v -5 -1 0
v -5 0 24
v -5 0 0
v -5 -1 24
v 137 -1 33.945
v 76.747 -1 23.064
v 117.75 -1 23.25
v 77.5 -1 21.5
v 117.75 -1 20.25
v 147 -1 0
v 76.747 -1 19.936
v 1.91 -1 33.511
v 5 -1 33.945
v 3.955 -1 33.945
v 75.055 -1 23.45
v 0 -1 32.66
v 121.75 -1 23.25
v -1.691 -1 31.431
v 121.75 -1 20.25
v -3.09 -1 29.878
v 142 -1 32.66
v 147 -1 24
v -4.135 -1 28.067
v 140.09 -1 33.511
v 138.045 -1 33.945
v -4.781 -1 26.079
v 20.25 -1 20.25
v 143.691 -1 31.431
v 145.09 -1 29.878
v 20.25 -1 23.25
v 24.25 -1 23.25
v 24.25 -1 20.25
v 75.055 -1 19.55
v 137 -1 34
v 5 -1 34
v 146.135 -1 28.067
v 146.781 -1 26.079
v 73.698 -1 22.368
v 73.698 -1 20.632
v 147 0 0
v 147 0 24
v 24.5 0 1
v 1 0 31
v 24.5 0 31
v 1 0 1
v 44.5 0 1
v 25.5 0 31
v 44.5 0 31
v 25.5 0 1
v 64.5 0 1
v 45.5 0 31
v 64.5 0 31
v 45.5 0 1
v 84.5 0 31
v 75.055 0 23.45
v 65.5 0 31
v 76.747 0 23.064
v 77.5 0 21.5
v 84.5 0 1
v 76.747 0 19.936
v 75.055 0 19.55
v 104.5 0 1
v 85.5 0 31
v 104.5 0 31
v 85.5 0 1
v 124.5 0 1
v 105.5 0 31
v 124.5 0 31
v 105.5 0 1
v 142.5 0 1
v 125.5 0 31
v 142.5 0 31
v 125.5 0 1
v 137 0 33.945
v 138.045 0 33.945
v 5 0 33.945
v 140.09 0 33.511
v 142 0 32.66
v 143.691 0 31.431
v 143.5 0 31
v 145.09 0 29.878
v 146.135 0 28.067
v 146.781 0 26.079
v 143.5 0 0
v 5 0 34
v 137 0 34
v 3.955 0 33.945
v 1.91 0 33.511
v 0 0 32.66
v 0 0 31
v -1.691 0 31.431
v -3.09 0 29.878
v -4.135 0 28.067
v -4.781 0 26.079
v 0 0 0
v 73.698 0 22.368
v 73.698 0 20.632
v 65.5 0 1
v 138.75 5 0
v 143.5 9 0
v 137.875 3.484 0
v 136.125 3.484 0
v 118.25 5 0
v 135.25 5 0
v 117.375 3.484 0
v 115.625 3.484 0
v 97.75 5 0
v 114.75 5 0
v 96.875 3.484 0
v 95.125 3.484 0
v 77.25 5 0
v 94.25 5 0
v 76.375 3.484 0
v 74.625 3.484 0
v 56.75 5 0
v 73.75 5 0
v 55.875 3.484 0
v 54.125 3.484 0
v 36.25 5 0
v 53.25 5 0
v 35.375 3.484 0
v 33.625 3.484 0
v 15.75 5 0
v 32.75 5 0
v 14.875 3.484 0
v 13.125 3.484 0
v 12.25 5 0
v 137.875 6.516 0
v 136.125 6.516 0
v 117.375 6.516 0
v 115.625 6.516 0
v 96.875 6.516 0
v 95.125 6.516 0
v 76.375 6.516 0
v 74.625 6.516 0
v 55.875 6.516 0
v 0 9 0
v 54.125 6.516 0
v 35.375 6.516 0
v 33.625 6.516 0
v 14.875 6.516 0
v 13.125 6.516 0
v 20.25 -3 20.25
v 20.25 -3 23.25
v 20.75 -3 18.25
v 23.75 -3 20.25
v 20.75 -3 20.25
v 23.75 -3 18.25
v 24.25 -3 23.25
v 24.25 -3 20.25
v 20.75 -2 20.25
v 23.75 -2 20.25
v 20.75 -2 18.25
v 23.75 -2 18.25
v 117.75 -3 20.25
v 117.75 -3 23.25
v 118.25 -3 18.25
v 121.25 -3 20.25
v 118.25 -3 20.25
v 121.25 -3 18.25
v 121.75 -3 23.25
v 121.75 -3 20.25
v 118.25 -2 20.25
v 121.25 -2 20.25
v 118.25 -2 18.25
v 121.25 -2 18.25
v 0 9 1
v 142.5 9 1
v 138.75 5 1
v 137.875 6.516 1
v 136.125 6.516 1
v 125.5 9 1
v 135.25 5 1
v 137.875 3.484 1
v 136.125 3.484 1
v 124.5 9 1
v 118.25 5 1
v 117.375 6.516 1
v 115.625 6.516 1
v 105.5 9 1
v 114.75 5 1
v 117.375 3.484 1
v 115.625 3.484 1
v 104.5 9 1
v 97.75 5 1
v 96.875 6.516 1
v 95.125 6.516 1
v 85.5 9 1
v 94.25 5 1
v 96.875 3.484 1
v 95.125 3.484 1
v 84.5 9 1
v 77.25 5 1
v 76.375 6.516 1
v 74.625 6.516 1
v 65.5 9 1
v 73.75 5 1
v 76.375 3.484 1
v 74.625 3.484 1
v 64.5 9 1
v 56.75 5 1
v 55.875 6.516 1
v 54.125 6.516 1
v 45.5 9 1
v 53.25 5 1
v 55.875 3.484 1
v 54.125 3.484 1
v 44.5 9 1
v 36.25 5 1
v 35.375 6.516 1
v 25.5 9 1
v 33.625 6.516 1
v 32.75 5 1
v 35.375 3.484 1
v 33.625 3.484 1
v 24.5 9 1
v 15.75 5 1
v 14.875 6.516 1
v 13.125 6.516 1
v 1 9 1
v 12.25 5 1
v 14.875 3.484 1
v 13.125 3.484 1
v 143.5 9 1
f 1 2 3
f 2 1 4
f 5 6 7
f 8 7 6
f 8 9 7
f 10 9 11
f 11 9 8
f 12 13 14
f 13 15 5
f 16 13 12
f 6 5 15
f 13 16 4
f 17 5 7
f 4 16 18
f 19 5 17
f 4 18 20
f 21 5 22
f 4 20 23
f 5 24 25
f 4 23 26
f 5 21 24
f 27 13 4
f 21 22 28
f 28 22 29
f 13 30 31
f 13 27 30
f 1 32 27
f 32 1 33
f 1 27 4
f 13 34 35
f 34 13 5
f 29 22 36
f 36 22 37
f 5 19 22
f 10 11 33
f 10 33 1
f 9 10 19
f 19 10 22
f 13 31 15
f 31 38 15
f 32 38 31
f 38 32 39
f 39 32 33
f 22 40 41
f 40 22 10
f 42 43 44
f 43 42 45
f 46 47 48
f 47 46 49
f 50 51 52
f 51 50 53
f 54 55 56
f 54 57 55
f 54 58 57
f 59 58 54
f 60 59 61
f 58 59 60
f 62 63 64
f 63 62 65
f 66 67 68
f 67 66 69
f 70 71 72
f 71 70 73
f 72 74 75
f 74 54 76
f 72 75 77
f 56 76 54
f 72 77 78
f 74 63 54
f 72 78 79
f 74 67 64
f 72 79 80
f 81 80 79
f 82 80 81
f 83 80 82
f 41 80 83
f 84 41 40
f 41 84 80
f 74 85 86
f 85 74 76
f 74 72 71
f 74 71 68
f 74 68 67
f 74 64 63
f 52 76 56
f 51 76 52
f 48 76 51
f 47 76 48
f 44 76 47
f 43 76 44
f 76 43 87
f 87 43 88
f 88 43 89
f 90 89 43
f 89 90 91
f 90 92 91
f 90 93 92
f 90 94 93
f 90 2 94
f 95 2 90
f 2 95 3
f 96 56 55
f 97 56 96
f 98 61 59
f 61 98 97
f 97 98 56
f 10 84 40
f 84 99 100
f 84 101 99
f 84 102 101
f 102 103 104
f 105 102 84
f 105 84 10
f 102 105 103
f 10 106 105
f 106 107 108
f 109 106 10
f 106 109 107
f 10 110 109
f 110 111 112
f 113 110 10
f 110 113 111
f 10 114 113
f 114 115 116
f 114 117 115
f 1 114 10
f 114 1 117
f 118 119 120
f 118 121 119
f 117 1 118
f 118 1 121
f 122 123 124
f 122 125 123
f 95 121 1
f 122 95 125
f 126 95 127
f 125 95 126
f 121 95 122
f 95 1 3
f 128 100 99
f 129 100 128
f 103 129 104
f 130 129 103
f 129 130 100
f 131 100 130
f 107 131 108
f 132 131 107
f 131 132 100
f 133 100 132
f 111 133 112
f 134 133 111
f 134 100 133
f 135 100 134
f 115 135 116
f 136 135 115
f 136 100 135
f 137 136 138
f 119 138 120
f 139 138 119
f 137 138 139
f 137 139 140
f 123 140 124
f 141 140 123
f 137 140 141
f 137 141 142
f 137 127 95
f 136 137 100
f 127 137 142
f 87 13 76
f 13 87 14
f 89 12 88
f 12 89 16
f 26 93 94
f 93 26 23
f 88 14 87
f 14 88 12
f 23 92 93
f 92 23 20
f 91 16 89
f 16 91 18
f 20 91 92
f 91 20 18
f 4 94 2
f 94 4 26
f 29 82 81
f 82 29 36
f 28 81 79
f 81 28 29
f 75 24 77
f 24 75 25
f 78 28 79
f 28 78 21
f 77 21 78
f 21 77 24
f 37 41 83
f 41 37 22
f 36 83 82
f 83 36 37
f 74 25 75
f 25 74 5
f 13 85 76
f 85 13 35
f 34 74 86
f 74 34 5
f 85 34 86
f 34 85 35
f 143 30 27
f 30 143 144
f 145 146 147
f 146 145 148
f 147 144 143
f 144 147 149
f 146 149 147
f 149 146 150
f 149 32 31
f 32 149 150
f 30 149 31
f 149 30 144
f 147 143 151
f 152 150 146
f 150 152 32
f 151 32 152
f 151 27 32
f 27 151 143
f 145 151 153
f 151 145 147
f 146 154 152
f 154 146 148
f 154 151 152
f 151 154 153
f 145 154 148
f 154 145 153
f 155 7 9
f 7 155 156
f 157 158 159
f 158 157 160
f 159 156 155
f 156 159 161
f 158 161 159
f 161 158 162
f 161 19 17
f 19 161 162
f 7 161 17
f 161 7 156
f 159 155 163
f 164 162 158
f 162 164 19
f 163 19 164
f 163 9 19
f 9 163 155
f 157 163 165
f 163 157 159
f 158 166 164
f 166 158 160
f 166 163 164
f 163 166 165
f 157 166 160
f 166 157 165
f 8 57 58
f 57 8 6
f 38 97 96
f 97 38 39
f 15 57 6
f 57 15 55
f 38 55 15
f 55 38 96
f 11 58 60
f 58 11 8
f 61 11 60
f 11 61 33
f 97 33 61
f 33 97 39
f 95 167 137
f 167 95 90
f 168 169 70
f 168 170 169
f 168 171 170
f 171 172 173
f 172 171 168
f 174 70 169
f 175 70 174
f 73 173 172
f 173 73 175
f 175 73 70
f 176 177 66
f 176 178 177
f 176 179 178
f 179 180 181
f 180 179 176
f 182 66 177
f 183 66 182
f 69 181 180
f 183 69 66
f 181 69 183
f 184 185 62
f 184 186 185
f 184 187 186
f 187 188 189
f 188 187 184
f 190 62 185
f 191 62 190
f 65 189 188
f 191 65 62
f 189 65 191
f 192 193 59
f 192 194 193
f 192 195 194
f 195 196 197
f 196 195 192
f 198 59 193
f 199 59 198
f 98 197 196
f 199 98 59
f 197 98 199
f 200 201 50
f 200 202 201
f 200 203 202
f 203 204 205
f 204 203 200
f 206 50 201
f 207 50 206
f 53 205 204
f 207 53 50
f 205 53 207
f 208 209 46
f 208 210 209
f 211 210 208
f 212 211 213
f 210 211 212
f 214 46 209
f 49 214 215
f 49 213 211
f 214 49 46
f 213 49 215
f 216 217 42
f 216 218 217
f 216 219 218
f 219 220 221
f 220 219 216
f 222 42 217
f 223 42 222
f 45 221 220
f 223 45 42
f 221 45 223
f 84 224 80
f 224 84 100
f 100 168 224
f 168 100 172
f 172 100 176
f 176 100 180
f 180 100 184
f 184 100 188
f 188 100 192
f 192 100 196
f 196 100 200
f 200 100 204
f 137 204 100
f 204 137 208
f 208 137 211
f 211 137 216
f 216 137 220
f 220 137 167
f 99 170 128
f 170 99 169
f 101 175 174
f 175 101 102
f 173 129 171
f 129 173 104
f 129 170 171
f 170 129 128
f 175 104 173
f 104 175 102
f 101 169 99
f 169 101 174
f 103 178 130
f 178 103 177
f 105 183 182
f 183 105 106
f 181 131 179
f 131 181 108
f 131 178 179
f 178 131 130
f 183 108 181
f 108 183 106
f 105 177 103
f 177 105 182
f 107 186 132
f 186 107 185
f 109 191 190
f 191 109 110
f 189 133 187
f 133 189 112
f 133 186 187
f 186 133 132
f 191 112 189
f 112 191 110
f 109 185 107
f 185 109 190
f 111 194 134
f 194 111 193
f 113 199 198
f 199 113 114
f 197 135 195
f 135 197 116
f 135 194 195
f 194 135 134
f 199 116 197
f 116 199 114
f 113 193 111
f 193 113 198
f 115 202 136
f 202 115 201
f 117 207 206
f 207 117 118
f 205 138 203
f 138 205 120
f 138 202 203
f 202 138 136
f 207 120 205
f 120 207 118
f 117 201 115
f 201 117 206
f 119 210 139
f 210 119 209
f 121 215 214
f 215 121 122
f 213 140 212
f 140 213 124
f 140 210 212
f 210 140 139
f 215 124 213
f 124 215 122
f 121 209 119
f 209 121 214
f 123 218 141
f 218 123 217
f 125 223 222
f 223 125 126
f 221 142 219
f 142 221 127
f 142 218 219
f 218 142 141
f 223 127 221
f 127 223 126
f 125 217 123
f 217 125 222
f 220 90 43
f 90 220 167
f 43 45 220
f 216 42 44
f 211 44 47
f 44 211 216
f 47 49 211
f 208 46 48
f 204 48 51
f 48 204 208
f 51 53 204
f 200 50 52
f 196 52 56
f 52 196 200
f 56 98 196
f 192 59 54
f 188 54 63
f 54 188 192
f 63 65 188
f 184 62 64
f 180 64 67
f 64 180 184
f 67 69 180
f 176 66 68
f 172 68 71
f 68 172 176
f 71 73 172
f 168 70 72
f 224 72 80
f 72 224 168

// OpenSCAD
PolyPoints = [
    [0,0,0],
    [4.5,0,0],
    [5.5,3.5,0],
    [-1,3.5,0],
    [-0.275,1,1],
    [4.775,1,1],
    [5.5,3.5,1],
    [-1,3.5,1]
];
PolyFaces = [
    [0,1,2,3],
    [4,5,1,0],
    [7,6,5,4],
    [5,6,2,1],
    [6,7,3,2],
    [7,4,0,3]
];

module prism(l, w, h){
    polyhedron(
        points=[[0,0,0], [l,0,0], [l,w,0], [0,w,0], [0,w,h], [l,w,h]],
        faces=[[0,1,2,3],[5,4,3,2],[0,4,5,1],[0,3,4],[5,2,1]]
    );
}
   
rotate([-90,0,0])
    translate([0,-31,0])
        prism(1, 30, 9);
rotate([-90,0,0])
    translate([24.5,-31,0])
        prism(1, 30, 9);
rotate([-90,0,0])
    translate([44.5,-31,0])
        prism(1, 30, 9);
rotate([-90,0,0])
    translate([64.5,-31,0])
        prism(1, 30, 9);
rotate([-90,0,0])
    translate([84.5,-31,0])
        prism(1, 30, 9);
rotate([-90,0,0])
    translate([104.5,-31,0])
        prism(1, 30, 9);
rotate([-90,0,0])
    translate([124.5,-31,0])
        prism(1, 30, 9);
rotate([-90,0,0])
    translate([142.5,-31,0])
        prism(1, 30, 9);
            
union() {
    difference() {
        cube([143.5,9,1]);
        translate([137,5,0])
        cylinder(1,1.75,1.75);
        translate([116.5,5,0])
        cylinder(1,1.75,1.75);
        translate([96,5,0])
        cylinder(1,1.75,1.75);
        translate([75.5,5,0])
        cylinder(1,1.75,1.75);
        translate([55,5,0])
        cylinder(1,1.75,1.75);
        translate([34.5,5,0])
        cylinder(1,1.75,1.75);
        translate([14,5,0])
        cylinder(1,1.75,1.75);
    }
    rotate([90,0,0])
    difference() {
        union() {
            translate([-5,0,0])
            cube([152,24,1]);
            translate([5,24,0])
            cylinder(1,10,10);
            translate([137,24,0])
            cylinder(1,10,10);
            translate([5,24,0])
            cube([132,10,1]);

//            translate([20,20,1])
//            polyhedron(PolyPoints, PolyFaces);
//            translate([117.5,20,1])
//            polyhedron(PolyPoints, PolyFaces);
            
            translate([20.25,20.25,1])
            cube([4,3,2]);
            translate([20.75,18.25,2])
            cube([3,2,1]);
            translate([117.75,20.25,1])
            cube([4,3,2]);
            translate([118.25,18.25,2])
            cube([3,2,1]);
        }
        translate([75.5,21.5,0])
        cylinder(1,2,2);
    }
}
